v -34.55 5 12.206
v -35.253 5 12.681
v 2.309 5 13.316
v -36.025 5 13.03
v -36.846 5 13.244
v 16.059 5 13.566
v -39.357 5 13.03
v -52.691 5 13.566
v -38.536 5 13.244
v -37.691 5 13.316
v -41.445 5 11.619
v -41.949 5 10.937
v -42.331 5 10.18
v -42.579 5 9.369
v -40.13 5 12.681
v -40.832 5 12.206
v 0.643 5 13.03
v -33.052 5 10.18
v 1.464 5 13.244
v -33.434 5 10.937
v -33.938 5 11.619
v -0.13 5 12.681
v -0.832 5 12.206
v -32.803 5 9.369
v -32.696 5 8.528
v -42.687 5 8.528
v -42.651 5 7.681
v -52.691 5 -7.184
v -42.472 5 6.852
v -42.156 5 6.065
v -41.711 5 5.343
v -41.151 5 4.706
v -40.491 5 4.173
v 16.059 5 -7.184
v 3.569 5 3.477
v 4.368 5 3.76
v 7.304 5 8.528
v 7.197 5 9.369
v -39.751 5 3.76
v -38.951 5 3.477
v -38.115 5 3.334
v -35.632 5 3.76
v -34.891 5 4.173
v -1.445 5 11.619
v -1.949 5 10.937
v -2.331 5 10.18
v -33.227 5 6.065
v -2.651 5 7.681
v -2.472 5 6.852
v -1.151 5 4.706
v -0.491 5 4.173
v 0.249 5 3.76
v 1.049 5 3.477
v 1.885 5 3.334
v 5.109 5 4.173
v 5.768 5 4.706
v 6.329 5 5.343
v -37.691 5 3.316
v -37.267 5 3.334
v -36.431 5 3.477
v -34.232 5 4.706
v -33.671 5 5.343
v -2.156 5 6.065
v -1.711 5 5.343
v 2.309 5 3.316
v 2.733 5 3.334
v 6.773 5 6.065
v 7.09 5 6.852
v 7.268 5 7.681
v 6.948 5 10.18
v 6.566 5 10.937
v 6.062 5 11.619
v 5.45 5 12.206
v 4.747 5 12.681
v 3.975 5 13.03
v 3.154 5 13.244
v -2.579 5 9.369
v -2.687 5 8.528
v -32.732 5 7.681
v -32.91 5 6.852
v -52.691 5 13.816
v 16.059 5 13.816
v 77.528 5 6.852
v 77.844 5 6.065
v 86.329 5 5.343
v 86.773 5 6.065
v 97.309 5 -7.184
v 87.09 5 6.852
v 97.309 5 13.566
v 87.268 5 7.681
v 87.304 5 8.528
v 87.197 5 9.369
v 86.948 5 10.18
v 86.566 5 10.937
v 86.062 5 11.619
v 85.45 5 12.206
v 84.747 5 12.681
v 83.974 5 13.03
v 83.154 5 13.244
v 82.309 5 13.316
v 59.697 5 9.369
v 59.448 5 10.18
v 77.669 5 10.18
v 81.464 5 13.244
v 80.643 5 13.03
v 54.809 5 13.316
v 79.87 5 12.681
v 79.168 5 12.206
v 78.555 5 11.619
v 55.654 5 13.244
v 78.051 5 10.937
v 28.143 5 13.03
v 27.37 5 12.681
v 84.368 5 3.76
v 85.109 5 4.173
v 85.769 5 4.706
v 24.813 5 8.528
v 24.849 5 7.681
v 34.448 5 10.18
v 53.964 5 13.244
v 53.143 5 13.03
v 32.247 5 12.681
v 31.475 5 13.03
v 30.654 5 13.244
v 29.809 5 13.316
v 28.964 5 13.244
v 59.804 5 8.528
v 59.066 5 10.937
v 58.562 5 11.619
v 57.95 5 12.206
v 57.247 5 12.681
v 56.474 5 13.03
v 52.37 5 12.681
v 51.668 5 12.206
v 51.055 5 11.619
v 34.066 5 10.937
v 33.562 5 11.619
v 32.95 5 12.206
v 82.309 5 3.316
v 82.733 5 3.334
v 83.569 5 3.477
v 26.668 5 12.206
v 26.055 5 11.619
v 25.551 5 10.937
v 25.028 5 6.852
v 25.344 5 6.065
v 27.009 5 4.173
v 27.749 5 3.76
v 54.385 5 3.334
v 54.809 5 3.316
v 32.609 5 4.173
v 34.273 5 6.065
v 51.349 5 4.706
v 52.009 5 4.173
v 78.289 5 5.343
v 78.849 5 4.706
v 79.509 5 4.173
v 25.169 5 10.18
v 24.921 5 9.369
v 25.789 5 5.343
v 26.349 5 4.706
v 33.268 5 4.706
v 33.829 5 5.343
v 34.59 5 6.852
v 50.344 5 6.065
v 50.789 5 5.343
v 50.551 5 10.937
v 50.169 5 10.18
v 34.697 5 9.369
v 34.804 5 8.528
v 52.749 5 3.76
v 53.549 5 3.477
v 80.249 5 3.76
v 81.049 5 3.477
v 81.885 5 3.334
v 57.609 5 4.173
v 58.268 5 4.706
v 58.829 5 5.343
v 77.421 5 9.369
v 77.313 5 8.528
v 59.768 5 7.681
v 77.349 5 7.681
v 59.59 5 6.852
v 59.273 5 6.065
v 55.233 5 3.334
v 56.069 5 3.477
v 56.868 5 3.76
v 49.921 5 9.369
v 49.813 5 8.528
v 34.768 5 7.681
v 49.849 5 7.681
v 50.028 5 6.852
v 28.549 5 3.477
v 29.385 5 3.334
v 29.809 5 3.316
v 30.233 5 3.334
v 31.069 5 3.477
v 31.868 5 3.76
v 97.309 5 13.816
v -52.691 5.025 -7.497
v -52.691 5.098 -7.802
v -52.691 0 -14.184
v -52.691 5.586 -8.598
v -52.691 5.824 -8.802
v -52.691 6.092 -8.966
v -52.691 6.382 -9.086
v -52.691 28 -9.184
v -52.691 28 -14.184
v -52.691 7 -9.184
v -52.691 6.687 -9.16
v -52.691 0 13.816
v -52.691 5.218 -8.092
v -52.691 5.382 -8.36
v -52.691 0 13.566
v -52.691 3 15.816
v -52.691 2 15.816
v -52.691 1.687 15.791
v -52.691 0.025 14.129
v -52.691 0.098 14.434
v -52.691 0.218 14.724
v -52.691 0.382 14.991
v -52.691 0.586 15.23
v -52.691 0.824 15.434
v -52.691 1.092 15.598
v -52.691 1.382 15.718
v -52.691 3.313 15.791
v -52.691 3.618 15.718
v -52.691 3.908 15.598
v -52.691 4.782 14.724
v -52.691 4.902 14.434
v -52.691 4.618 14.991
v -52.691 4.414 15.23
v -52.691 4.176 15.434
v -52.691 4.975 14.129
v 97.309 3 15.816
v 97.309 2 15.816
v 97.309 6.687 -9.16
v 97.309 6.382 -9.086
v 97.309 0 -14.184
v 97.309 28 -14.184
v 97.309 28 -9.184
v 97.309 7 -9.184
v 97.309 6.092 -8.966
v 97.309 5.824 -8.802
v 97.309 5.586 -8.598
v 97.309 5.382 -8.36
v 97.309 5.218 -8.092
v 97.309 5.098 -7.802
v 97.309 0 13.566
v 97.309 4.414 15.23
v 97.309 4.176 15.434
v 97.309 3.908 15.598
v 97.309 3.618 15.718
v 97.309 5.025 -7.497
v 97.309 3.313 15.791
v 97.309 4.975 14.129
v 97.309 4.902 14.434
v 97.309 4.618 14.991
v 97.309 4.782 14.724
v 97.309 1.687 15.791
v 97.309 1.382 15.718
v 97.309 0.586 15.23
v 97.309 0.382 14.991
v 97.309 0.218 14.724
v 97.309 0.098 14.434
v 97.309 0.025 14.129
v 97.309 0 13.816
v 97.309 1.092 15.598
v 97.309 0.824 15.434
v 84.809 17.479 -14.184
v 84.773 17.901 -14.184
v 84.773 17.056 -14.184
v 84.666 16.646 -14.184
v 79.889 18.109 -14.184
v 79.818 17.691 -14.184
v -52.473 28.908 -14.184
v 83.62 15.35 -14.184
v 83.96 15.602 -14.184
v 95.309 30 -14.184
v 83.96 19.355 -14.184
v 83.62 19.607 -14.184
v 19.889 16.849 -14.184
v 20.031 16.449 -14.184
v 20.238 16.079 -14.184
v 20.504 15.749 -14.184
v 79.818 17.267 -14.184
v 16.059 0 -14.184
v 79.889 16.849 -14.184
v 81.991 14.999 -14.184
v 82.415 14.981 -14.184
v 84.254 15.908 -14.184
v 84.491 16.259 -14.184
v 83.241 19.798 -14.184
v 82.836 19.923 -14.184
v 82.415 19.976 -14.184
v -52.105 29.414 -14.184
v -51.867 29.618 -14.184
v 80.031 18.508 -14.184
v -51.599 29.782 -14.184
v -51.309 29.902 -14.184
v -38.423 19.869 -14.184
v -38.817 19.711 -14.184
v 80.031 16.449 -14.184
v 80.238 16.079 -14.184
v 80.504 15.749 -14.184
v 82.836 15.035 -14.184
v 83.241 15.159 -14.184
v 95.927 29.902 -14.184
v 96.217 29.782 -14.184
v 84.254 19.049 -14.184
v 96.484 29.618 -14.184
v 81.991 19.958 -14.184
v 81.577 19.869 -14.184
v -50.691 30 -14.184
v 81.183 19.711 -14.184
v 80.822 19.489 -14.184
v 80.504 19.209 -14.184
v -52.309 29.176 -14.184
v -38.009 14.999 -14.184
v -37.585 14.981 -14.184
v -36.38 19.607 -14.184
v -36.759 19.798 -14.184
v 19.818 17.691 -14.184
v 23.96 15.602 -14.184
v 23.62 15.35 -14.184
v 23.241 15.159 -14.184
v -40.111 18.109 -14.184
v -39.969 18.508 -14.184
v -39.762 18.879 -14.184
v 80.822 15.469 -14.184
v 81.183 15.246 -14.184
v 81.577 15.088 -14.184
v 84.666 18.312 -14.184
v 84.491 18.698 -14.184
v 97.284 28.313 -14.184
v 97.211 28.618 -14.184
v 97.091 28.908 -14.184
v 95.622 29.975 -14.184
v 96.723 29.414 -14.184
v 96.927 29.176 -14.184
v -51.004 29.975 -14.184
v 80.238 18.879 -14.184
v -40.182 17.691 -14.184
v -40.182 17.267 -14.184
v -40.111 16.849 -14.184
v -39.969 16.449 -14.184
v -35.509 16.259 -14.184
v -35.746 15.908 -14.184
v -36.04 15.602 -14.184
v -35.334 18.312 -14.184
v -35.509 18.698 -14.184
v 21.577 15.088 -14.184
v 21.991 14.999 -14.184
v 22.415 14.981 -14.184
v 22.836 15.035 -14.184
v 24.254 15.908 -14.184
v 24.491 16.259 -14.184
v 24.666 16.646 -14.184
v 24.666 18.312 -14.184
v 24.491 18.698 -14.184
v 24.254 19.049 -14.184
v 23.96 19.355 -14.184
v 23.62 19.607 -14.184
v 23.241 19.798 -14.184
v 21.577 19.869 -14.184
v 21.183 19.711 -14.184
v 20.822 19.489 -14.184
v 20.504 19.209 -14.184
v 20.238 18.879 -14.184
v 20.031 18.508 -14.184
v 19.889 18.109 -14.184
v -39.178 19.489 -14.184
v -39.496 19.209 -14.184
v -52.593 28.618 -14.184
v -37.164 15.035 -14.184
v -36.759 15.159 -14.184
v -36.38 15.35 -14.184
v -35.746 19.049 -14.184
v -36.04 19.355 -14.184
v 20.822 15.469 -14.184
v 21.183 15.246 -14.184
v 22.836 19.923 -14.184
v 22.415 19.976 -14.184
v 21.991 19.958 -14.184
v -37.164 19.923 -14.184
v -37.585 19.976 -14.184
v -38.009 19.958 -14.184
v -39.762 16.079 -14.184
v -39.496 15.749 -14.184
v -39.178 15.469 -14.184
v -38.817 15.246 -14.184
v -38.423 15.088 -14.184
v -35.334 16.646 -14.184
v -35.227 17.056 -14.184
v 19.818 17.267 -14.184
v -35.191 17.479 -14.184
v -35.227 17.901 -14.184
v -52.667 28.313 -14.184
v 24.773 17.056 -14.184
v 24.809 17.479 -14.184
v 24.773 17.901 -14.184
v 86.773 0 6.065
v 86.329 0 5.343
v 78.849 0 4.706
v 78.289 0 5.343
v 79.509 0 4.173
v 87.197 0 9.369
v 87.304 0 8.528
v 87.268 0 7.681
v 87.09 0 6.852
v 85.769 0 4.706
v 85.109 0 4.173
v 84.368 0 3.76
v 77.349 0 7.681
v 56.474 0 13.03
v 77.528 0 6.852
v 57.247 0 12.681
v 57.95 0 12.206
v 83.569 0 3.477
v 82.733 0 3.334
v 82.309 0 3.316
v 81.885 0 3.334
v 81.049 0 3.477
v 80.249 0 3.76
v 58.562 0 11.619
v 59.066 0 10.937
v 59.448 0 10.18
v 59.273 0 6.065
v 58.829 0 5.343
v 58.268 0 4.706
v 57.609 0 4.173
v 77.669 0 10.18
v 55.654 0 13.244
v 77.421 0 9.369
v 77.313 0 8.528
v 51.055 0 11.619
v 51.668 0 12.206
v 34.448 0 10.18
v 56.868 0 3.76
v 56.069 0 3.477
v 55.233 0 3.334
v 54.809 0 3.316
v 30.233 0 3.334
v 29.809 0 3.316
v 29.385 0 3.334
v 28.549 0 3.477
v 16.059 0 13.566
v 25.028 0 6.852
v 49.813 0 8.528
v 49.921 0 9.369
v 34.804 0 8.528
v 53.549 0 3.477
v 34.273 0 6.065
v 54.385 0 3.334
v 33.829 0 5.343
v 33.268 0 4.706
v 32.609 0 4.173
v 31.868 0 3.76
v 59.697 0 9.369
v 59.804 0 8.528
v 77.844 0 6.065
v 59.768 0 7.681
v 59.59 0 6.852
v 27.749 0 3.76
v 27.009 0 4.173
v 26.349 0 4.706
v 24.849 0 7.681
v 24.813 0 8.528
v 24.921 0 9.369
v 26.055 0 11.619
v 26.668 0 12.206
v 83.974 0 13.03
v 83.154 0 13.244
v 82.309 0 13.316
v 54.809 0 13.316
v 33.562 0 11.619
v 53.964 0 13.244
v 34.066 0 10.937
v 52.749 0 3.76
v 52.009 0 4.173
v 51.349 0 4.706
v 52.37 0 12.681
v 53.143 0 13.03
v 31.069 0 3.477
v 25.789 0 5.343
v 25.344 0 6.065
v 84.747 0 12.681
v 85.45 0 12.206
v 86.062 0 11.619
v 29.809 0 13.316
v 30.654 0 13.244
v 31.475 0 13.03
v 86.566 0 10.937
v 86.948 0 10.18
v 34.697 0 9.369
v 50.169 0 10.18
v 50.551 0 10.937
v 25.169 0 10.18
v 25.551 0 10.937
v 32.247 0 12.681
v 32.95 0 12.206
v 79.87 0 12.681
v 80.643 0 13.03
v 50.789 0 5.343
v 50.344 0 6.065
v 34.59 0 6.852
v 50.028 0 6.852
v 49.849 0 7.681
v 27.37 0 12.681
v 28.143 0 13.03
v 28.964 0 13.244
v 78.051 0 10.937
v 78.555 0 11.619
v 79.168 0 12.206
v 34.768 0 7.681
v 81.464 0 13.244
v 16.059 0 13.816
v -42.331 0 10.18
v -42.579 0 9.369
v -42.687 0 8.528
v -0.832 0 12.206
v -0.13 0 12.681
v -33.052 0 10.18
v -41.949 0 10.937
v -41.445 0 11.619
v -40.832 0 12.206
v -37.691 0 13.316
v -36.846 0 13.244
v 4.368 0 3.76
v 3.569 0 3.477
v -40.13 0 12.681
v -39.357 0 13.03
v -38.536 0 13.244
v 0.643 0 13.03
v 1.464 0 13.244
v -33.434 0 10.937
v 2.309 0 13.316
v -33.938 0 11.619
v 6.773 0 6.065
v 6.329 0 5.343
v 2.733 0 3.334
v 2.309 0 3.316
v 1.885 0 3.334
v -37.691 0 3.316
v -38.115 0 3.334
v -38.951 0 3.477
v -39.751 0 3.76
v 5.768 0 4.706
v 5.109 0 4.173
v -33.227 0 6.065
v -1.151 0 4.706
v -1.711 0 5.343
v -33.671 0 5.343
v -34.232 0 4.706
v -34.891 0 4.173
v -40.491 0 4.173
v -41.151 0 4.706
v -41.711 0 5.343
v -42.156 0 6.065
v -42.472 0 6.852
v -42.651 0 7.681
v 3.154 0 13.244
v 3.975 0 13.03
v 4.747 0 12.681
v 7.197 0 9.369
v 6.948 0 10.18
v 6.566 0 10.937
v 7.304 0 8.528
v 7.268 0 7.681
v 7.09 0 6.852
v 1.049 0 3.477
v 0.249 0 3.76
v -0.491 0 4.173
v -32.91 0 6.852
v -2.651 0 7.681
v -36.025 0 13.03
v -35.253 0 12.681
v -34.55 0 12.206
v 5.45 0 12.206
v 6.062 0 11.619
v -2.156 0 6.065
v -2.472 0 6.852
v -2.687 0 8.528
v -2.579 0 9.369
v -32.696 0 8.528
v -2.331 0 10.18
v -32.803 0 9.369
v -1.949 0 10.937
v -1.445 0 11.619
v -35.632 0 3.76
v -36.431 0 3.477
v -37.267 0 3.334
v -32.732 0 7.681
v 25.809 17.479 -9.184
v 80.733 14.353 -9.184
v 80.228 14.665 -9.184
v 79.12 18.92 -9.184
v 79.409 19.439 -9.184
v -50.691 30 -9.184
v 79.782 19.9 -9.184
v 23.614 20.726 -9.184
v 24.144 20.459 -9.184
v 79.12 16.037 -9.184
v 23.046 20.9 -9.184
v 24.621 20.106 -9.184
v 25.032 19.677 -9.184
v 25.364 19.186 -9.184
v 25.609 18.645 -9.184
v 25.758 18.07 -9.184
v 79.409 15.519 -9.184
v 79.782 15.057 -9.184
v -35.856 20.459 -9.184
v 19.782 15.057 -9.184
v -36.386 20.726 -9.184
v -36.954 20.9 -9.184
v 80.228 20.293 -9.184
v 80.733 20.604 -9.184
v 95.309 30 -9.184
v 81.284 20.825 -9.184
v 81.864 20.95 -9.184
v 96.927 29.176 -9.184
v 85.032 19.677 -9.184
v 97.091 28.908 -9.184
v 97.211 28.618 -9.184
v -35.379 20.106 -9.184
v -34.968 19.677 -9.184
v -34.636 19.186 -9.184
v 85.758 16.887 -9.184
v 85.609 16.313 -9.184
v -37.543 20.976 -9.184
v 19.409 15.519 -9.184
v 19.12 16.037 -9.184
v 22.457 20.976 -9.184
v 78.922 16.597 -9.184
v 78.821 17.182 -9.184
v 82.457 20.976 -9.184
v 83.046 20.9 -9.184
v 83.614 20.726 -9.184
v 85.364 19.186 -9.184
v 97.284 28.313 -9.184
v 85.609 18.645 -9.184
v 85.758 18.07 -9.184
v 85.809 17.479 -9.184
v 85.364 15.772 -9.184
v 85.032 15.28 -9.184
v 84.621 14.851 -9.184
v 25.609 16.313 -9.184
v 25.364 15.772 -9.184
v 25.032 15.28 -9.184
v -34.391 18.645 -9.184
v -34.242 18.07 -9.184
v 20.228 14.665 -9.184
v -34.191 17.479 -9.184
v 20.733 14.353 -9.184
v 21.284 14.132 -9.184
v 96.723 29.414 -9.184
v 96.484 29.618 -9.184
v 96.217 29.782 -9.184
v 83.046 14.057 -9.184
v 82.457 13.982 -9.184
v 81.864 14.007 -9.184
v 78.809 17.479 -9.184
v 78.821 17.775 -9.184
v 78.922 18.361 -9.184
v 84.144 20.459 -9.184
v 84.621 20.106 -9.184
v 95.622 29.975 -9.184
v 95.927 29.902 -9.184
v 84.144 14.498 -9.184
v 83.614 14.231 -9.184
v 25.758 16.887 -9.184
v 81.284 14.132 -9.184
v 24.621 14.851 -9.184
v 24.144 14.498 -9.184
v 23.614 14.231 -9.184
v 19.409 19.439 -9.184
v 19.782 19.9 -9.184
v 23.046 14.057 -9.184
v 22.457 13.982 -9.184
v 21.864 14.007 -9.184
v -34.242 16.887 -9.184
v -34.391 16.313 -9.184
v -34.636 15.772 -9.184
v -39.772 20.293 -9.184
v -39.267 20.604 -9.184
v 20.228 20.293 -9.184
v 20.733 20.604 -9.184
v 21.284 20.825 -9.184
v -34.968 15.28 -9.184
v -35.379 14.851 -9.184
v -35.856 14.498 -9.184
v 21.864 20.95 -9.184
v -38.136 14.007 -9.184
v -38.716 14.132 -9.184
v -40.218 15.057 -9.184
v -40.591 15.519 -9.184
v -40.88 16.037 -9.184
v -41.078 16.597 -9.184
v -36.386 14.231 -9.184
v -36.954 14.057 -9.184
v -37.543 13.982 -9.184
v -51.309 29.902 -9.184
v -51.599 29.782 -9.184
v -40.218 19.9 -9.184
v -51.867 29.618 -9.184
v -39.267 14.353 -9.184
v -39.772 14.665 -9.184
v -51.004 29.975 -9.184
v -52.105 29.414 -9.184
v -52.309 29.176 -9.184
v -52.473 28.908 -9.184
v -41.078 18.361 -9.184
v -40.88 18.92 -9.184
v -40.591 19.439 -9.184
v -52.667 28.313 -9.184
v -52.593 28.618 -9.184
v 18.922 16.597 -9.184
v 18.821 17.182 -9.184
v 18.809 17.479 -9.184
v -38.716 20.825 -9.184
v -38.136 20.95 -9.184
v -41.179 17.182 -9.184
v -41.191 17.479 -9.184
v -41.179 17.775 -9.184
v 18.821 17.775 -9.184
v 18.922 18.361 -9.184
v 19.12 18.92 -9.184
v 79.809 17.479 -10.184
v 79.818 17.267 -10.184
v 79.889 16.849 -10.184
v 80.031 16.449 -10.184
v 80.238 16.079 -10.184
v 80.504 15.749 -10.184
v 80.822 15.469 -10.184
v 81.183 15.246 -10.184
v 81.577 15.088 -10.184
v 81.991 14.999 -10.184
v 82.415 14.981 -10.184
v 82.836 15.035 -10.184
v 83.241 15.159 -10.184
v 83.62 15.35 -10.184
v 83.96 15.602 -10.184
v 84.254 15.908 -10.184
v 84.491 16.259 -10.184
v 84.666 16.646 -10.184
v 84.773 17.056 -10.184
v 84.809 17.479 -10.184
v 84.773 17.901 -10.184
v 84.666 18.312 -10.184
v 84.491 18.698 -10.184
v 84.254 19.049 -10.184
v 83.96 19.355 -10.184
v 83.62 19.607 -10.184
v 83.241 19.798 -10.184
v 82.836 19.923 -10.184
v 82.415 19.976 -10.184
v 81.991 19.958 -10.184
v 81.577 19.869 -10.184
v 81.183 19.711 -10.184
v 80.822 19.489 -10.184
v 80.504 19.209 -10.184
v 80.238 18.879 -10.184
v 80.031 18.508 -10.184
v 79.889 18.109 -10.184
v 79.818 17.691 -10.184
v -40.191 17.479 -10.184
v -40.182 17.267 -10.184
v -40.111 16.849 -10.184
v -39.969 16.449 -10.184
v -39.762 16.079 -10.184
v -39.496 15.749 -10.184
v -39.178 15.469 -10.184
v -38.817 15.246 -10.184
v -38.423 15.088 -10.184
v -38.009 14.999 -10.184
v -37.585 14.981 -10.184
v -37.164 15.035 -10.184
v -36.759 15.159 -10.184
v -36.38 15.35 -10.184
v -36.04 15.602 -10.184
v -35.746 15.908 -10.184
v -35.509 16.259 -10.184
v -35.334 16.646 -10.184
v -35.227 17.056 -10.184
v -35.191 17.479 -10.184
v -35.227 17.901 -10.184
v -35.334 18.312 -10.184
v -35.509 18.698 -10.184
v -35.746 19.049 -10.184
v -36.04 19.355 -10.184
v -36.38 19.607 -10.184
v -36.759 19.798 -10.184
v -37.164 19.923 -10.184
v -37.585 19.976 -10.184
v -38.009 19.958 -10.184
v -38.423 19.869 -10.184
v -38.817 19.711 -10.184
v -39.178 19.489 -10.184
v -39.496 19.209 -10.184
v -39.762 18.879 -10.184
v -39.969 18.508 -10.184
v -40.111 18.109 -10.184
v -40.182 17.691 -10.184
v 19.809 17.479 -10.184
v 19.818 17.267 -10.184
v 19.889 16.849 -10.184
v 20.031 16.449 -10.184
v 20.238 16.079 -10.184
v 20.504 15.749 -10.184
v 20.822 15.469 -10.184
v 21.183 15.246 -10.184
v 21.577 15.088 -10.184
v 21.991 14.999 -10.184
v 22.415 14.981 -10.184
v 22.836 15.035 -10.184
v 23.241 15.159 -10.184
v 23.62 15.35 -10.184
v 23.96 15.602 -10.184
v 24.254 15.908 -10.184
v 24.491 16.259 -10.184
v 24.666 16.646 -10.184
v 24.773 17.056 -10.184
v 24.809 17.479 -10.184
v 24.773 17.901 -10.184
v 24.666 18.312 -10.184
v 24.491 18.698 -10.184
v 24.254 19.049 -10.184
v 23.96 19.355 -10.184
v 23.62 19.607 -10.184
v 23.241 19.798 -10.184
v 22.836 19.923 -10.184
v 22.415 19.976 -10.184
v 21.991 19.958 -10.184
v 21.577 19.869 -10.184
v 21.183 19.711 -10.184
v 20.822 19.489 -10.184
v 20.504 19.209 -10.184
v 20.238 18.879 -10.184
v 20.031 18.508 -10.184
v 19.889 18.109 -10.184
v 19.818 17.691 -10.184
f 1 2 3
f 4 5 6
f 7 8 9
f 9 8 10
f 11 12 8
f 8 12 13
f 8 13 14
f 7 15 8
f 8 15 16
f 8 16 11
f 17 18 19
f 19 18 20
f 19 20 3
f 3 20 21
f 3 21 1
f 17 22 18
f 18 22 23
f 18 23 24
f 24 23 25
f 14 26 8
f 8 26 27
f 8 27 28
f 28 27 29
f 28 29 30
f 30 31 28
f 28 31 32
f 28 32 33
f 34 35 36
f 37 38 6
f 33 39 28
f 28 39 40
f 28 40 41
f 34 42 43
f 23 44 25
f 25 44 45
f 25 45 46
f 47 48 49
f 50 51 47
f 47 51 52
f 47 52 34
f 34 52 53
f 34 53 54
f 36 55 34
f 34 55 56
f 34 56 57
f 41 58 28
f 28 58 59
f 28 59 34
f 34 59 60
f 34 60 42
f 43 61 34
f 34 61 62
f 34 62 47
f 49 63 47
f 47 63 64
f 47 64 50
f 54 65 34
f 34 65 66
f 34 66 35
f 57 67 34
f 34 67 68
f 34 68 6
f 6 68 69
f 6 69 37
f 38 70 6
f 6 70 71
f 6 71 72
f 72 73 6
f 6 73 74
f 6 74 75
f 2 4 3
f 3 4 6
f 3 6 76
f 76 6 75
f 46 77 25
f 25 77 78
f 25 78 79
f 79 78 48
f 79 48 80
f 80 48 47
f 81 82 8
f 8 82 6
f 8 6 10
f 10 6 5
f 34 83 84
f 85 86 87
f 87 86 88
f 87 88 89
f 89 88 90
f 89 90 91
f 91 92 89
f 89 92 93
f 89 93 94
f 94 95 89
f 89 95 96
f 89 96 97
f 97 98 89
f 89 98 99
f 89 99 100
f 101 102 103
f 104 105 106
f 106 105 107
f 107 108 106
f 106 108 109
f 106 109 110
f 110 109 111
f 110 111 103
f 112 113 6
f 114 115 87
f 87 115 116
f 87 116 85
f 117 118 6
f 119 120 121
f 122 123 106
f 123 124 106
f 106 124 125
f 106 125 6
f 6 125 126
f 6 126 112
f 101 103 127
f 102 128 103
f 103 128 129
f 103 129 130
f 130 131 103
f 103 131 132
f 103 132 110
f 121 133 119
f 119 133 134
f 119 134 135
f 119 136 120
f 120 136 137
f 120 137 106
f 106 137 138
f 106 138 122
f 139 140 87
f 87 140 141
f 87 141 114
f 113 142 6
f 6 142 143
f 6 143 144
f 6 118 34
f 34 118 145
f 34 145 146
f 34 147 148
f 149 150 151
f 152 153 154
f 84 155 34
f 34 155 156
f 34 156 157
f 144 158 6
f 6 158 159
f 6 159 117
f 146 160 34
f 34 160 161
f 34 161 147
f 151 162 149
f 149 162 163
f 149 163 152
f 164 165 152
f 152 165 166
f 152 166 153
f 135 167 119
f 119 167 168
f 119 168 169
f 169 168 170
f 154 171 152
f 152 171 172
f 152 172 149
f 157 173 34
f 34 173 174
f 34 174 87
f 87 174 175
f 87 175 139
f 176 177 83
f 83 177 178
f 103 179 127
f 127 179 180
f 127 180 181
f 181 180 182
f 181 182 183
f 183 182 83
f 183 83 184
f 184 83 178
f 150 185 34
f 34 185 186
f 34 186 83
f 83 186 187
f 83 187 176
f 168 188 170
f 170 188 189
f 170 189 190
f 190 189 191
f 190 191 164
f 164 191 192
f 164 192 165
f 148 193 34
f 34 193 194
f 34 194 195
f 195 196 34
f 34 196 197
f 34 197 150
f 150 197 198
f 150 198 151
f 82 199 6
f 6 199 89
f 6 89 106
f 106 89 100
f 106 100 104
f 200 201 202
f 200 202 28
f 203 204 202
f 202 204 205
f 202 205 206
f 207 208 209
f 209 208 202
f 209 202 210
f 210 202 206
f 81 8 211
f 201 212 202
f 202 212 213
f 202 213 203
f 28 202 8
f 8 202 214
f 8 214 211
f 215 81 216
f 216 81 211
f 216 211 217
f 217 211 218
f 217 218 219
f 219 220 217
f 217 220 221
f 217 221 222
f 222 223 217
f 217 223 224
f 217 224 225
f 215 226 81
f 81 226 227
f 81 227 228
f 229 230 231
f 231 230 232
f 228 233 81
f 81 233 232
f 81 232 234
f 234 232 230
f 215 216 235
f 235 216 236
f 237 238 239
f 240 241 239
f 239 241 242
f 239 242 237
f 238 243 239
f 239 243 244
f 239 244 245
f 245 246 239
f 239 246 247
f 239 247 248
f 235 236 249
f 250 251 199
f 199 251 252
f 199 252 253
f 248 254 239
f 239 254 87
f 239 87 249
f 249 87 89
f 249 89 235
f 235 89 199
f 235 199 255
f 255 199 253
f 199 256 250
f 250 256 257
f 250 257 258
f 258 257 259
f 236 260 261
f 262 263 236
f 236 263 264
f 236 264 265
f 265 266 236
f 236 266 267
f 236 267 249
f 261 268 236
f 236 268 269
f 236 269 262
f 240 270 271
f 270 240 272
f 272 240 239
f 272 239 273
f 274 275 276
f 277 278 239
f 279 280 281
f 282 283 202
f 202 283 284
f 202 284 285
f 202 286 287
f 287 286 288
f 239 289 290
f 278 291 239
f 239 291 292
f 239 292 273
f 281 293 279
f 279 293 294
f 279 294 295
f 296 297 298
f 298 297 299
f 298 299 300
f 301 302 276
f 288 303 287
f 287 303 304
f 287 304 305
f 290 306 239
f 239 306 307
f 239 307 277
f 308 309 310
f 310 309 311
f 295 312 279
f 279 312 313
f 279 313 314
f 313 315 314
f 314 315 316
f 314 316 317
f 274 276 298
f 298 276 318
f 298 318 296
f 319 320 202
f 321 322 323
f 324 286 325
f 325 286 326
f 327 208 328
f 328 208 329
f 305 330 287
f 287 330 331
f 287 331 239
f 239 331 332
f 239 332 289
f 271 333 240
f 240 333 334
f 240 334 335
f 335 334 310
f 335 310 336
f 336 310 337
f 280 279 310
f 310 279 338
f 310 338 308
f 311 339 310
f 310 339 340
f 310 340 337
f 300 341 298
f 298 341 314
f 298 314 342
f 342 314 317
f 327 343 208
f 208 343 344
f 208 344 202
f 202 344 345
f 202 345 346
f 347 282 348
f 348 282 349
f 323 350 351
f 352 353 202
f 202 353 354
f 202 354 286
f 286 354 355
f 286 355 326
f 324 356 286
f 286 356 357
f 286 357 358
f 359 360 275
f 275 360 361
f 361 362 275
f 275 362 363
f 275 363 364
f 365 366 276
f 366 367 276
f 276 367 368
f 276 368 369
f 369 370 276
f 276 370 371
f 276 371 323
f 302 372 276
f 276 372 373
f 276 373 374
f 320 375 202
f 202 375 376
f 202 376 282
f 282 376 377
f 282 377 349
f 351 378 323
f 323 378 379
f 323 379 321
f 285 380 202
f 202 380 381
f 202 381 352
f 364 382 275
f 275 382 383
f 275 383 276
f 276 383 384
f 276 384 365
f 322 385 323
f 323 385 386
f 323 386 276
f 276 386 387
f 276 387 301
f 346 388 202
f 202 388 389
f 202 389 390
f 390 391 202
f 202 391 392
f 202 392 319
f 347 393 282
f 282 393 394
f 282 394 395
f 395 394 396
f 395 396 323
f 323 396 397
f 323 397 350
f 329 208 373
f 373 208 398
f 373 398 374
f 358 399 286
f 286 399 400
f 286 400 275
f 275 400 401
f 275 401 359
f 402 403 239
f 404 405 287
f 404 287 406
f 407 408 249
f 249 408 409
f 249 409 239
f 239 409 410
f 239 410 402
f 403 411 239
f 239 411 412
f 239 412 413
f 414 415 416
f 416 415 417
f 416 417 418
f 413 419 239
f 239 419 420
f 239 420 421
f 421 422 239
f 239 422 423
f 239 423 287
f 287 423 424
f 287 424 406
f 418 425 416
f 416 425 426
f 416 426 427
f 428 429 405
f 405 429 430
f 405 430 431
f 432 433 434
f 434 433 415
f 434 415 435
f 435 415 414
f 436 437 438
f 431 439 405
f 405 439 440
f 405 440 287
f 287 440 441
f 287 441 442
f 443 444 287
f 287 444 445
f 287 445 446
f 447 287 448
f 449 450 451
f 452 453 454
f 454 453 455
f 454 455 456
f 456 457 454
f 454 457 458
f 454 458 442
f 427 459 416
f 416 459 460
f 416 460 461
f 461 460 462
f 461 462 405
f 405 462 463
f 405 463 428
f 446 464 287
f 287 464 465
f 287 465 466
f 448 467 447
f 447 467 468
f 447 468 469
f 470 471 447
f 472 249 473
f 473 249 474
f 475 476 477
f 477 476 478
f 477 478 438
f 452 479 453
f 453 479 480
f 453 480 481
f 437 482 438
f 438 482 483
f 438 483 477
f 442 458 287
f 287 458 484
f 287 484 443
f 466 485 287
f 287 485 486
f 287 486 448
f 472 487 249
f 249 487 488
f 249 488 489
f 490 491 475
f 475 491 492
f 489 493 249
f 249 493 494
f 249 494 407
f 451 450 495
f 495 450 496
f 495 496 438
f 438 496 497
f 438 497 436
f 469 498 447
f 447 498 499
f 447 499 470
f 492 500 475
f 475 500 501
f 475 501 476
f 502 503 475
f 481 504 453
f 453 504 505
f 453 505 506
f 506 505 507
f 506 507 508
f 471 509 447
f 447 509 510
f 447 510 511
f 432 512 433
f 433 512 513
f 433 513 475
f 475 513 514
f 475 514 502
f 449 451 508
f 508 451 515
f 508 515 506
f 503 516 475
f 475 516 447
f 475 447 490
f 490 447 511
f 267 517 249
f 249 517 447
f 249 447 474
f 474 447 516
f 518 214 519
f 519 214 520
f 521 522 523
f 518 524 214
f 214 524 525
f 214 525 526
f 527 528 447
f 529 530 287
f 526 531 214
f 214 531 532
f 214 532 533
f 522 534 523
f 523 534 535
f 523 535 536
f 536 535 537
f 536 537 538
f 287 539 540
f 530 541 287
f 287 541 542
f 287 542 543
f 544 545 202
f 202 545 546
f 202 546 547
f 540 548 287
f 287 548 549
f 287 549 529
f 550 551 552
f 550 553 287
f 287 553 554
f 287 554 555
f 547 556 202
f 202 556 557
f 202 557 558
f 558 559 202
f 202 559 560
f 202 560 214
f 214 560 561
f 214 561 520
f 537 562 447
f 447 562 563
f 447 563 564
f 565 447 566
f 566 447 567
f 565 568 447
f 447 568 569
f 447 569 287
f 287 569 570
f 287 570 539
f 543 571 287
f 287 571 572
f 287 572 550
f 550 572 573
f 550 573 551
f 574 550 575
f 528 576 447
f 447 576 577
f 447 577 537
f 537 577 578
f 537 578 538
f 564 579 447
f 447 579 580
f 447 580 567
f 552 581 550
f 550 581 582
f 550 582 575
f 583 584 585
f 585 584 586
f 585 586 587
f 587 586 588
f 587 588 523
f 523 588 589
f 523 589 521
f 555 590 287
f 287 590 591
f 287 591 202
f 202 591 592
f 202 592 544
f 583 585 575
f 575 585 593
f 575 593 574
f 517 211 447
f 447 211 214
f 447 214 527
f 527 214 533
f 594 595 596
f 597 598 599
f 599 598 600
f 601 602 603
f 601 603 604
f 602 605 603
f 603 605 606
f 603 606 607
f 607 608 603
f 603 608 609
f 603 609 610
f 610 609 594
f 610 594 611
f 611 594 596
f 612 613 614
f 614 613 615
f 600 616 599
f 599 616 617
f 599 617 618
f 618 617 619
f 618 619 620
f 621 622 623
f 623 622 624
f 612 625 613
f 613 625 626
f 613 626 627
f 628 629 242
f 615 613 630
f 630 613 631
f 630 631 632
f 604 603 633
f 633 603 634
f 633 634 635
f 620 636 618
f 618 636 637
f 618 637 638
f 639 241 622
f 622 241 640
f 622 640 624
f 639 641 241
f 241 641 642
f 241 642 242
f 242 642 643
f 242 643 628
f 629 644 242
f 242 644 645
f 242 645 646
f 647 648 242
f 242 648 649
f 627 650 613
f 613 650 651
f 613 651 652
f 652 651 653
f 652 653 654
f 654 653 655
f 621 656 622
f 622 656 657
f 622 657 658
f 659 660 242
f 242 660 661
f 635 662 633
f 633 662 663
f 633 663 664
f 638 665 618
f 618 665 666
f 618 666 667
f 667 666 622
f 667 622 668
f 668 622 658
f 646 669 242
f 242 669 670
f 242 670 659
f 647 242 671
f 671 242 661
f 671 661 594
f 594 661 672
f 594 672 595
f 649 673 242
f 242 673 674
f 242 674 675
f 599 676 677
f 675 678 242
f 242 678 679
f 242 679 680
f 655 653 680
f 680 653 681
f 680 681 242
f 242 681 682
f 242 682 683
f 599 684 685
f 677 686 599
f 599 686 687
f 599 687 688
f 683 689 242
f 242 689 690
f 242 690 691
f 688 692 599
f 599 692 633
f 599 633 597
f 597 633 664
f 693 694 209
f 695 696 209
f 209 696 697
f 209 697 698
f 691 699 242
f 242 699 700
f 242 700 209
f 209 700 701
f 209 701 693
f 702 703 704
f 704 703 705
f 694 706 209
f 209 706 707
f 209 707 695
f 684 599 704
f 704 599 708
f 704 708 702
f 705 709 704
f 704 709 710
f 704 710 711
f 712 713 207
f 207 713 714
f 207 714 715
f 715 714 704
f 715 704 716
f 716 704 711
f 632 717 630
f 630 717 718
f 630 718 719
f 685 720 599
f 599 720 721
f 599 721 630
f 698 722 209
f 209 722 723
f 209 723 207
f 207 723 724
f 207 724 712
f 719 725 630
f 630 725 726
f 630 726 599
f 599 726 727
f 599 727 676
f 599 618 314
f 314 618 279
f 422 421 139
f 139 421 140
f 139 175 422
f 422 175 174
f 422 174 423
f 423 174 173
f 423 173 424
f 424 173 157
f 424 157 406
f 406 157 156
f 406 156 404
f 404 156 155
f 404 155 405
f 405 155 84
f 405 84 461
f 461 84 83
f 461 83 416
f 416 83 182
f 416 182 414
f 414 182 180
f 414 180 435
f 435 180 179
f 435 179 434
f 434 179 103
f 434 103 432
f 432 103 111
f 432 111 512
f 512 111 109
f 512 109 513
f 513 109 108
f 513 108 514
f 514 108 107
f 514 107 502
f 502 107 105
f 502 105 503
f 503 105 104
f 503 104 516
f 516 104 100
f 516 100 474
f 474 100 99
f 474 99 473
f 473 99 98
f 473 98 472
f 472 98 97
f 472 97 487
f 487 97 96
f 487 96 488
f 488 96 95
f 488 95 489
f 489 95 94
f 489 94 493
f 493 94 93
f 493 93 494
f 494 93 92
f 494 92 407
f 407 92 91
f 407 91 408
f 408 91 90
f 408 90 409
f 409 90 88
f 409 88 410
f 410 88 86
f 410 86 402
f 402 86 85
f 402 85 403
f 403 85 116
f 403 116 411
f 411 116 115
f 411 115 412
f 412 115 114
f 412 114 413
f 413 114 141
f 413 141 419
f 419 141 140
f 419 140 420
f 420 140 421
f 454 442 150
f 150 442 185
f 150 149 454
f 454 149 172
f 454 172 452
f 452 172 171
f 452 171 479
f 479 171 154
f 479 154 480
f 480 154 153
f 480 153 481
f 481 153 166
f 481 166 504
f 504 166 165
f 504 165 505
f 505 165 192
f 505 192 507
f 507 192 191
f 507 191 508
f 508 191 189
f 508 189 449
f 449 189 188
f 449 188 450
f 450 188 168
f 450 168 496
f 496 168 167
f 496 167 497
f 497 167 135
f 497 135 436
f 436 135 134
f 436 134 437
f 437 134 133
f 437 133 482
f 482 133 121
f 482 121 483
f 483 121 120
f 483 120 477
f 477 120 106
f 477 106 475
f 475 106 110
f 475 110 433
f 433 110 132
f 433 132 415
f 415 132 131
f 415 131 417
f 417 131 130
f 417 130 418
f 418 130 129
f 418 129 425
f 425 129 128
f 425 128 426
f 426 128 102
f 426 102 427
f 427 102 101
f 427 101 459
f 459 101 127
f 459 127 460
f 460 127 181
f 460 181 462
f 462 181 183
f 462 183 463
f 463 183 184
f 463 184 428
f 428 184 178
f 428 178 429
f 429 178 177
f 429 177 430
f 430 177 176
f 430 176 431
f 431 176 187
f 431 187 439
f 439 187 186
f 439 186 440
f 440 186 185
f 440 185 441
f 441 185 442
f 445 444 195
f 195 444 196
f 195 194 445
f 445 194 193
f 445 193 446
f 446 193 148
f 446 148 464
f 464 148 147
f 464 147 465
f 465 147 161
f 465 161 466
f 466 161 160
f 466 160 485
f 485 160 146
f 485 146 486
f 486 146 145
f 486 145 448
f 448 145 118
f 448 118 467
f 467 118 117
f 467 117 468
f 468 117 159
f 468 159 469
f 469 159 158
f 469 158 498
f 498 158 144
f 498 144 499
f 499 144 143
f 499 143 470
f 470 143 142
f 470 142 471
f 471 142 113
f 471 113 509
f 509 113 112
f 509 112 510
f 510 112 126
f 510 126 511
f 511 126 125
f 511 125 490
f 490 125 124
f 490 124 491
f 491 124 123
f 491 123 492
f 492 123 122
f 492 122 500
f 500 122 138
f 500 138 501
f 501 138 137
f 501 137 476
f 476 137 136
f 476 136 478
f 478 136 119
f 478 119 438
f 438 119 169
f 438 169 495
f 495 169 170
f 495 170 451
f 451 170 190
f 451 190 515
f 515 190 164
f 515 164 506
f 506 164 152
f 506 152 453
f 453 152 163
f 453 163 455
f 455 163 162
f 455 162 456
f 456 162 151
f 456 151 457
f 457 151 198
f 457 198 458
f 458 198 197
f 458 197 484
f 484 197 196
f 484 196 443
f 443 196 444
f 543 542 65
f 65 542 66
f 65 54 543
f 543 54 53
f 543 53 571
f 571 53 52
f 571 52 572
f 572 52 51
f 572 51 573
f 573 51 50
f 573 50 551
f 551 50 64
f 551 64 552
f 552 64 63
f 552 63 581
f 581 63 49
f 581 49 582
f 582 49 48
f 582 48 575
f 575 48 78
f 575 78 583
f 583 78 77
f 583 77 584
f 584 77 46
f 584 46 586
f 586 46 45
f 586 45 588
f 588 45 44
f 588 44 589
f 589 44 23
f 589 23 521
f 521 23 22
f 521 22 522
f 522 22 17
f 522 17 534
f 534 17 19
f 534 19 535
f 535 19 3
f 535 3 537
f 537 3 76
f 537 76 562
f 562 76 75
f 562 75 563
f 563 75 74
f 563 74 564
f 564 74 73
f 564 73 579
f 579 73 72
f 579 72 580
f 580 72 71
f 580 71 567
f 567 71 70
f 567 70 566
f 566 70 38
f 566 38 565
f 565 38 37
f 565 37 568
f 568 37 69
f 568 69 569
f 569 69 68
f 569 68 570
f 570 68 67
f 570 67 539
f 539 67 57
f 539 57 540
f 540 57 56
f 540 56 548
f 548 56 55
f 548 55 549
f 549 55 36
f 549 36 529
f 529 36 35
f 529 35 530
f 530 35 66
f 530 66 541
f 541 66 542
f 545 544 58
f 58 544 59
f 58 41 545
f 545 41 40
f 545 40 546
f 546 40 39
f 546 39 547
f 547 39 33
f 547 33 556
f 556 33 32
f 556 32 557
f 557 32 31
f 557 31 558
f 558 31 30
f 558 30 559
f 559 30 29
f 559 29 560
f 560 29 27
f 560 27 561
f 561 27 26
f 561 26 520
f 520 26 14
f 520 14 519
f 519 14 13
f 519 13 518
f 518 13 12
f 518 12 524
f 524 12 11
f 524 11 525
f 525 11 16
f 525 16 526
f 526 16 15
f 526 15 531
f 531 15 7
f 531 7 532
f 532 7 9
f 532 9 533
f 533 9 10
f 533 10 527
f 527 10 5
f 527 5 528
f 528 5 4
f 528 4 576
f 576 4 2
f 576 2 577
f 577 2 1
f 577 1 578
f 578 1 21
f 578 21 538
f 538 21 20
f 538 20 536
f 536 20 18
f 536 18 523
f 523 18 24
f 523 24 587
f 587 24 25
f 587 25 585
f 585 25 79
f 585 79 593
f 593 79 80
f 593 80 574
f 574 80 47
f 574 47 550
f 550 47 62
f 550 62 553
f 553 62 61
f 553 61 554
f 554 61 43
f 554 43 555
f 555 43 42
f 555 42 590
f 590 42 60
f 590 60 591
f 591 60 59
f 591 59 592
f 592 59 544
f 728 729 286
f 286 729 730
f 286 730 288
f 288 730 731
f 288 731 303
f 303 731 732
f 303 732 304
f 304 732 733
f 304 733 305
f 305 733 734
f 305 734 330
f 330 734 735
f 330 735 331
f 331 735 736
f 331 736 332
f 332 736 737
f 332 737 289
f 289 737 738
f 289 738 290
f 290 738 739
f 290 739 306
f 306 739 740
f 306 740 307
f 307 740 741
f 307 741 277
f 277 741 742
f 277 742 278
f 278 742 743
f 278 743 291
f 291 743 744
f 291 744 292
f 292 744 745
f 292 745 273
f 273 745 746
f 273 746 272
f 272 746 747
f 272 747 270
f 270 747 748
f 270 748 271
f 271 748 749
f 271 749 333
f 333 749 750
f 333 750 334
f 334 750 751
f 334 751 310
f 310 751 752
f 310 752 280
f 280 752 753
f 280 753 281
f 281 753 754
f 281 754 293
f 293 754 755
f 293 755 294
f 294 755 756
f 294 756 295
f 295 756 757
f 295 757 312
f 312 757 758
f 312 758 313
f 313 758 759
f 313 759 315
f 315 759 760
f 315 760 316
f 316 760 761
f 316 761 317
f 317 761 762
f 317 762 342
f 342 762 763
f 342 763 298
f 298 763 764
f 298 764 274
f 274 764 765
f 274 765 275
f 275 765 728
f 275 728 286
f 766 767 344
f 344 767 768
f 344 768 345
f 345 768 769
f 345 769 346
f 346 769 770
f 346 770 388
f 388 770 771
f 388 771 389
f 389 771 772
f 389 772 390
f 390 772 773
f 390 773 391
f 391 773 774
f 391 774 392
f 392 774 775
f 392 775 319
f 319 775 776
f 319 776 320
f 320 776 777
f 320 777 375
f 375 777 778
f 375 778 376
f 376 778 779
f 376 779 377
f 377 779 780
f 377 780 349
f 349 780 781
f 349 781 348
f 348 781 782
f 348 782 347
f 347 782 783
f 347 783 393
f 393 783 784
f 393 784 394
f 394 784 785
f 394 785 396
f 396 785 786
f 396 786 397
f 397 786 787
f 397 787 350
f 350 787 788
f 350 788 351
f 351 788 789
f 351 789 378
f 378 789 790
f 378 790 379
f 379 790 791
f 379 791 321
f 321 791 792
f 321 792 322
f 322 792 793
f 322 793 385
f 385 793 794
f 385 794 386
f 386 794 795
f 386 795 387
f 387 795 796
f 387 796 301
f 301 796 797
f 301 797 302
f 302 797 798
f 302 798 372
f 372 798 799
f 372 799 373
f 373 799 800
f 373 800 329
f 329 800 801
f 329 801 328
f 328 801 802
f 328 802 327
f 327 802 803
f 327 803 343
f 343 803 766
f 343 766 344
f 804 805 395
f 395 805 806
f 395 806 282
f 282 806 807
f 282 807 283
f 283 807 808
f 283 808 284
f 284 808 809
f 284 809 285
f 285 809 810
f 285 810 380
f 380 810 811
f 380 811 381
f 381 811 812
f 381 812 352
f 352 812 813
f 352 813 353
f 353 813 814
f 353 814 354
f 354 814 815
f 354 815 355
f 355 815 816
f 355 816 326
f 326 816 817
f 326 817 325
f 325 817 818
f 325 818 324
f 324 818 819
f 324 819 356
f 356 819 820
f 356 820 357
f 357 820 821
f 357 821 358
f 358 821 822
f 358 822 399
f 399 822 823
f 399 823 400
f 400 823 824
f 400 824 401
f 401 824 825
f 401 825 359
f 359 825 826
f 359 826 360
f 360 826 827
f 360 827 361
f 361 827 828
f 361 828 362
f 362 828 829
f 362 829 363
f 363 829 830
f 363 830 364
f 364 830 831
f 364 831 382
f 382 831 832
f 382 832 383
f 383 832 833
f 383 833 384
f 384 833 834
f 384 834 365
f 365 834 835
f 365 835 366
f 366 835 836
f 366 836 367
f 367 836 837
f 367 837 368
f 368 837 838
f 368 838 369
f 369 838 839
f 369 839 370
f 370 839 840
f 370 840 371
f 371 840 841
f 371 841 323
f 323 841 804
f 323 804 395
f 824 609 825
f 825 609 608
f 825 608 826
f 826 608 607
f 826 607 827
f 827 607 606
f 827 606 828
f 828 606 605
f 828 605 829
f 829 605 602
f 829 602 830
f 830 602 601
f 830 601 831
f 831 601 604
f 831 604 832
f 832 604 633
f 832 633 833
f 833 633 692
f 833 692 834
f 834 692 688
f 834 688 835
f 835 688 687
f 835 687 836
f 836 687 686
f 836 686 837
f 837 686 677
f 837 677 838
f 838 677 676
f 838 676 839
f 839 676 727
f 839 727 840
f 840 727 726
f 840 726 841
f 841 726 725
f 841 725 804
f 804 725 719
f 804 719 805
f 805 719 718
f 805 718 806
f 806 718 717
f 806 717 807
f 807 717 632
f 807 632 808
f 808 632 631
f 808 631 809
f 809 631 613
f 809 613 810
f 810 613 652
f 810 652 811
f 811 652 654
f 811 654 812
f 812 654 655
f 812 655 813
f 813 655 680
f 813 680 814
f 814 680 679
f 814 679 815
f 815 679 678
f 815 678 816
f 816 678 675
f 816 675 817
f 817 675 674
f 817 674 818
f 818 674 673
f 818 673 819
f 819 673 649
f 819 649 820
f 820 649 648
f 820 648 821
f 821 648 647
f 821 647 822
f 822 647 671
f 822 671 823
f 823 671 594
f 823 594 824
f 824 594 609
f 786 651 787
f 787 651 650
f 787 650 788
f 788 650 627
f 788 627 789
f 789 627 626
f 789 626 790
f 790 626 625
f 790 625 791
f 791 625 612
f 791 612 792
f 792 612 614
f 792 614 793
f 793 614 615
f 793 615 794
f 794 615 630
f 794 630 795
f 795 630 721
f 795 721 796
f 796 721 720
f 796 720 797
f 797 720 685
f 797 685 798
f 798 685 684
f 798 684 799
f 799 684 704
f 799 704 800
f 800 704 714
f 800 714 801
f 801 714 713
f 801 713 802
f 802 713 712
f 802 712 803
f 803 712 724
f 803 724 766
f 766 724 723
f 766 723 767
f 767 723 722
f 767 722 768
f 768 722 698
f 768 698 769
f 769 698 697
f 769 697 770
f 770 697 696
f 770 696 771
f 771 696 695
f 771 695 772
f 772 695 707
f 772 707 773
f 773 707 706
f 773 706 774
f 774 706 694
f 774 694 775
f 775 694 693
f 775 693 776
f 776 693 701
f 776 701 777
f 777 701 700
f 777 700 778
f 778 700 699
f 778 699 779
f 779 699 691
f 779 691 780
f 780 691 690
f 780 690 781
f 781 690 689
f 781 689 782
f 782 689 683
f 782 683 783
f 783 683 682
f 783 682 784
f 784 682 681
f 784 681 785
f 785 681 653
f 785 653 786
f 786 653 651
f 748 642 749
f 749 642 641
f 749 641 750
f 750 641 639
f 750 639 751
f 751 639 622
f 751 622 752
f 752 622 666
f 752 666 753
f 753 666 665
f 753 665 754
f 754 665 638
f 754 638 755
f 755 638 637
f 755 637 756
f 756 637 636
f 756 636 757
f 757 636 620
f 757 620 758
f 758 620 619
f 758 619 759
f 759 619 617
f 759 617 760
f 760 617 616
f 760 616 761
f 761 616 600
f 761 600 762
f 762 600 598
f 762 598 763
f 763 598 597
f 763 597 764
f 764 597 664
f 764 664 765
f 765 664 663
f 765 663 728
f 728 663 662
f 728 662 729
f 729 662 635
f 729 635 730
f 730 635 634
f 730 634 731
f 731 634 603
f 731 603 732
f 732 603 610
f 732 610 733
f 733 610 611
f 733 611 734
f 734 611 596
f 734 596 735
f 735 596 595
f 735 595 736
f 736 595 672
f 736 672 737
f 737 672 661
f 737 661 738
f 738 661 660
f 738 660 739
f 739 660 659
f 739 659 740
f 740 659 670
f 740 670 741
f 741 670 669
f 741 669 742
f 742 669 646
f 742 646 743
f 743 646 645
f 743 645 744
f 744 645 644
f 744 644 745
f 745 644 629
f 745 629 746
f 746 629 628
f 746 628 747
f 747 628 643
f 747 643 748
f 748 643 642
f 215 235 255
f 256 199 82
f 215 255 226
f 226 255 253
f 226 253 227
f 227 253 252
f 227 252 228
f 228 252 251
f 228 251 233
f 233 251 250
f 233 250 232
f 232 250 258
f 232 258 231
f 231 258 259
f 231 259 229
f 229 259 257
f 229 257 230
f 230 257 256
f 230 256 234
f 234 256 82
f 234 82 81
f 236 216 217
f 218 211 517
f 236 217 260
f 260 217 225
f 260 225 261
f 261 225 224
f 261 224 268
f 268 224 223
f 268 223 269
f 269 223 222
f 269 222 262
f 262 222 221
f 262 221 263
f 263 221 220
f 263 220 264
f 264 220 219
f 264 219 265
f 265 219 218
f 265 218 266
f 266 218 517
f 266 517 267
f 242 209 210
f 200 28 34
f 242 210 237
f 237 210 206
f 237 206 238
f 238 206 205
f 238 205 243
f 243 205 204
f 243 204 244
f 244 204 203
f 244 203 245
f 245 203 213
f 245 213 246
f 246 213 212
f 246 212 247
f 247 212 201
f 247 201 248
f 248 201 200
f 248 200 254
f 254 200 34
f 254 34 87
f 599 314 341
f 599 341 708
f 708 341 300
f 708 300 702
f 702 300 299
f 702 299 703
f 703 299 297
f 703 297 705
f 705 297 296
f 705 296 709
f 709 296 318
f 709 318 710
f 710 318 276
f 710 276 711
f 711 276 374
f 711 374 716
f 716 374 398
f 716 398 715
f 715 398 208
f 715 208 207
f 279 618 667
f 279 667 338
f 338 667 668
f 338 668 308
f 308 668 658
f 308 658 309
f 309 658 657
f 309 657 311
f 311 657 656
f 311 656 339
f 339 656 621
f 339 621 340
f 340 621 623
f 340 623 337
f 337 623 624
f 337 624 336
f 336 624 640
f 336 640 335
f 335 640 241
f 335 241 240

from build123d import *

# Parameters (mm, degrees)
SKETCH1_W           = 150
SKETCH1_H           = 30
BOSS_EXTRUDE1_DEPTH = 5
SKETCH3_W           = 150
SKETCH3_H           = 5
BOSS_EXTRUDE2_DEPTH = 25
SKETCH6_R           = 5
CUT_EXTRUDE2_DEPTH  = 25
SKETCH7_R           = 2.5
CUT_EXTRUDE3_DEPTH  = 25
CHAMFER1_SIZE       = 1
FILLET2_R           = 2


with BuildPart() as part:
    # Sketch1 → Boss-Extrude1 (new body)
    with BuildSketch(Plane(origin=(0, 0, 0), x_dir=(1, 0, 0), z_dir=(0, 1, 0))):
        with Locations((22.308802864, -0.815715524)):
            Rectangle(SKETCH1_W, SKETCH1_H)
    extrude(amount=BOSS_EXTRUDE1_DEPTH)

    # Sketch3 → Boss-Extrude2 (add)
    with BuildSketch(Plane(origin=(0, 5, 0), x_dir=(1, 0, 0), z_dir=(0, 1, 0))):
        with Locations((22.308802864, 11.684284476)):
            Rectangle(SKETCH3_W, SKETCH3_H)
    extrude(amount=BOSS_EXTRUDE2_DEPTH)

    # Sketch6 → Cut-Extrude2 (cut)
    with BuildSketch(Plane(origin=(0, 5, 0), x_dir=(1, 0, 0), z_dir=(0, 1, 0))):
        with Locations(Location((82.308802864, -8.315715524, 0), (0, 0, 90))):
            Circle(SKETCH6_R)
        with Locations(Location((54.808802864, -8.315715524, 0), (0, 0, 90))):
            Circle(SKETCH6_R)
        with Locations(Location((29.808802864, -8.315715524, 0), (0, 0, 90))):
            Circle(SKETCH6_R)
        with Locations(Location((2.308802864, -8.315715524, 0), (0, 0, 90))):
            Circle(SKETCH6_R)
        with Locations(Location((-37.691197136, -8.315715524, 0), (0, 0, 90))):
            Circle(SKETCH6_R)
    extrude(amount=-CUT_EXTRUDE2_DEPTH, mode=Mode.SUBTRACT)

    # Sketch7 → Cut-Extrude3 (cut)
    with BuildSketch(Plane.XY.offset(-9.184284476)):
        with Locations((82.308802864, 17.478664245)):
            Circle(SKETCH7_R)
        with Locations((-37.691197136, 17.478664245)):
            Circle(SKETCH7_R)
        with Locations((22.308802864, 17.478664245)):
            Circle(SKETCH7_R)
    extrude(amount=-CUT_EXTRUDE3_DEPTH, mode=Mode.SUBTRACT)

    # Chamfer1
    chamfer1_edges = [part.edges().sort_by_distance(p)[0] for p in [
        (79.808802864, 17.478664245, -9.184284476),
        (-40.191197136, 17.478664245, -9.184284476),
        (19.808802864, 17.478664245, -9.184284476),
    ]]
    chamfer(chamfer1_edges, length=CHAMFER1_SIZE)

    # Fillet2
    fillet2_edges = [part.edges().sort_by_distance(p)[0] for p in [
        (22.308802864, 5, 15.815715524),
        (22.308802864, 0, 15.815715524),
        (22.308802864, 5, -9.184284476),
        (-52.691197136, 30, -11.684284476),
        (97.308802864, 30, -11.684284476),
    ]]
    fillet(fillet2_edges, radius=FILLET2_R)


solid = part.part
